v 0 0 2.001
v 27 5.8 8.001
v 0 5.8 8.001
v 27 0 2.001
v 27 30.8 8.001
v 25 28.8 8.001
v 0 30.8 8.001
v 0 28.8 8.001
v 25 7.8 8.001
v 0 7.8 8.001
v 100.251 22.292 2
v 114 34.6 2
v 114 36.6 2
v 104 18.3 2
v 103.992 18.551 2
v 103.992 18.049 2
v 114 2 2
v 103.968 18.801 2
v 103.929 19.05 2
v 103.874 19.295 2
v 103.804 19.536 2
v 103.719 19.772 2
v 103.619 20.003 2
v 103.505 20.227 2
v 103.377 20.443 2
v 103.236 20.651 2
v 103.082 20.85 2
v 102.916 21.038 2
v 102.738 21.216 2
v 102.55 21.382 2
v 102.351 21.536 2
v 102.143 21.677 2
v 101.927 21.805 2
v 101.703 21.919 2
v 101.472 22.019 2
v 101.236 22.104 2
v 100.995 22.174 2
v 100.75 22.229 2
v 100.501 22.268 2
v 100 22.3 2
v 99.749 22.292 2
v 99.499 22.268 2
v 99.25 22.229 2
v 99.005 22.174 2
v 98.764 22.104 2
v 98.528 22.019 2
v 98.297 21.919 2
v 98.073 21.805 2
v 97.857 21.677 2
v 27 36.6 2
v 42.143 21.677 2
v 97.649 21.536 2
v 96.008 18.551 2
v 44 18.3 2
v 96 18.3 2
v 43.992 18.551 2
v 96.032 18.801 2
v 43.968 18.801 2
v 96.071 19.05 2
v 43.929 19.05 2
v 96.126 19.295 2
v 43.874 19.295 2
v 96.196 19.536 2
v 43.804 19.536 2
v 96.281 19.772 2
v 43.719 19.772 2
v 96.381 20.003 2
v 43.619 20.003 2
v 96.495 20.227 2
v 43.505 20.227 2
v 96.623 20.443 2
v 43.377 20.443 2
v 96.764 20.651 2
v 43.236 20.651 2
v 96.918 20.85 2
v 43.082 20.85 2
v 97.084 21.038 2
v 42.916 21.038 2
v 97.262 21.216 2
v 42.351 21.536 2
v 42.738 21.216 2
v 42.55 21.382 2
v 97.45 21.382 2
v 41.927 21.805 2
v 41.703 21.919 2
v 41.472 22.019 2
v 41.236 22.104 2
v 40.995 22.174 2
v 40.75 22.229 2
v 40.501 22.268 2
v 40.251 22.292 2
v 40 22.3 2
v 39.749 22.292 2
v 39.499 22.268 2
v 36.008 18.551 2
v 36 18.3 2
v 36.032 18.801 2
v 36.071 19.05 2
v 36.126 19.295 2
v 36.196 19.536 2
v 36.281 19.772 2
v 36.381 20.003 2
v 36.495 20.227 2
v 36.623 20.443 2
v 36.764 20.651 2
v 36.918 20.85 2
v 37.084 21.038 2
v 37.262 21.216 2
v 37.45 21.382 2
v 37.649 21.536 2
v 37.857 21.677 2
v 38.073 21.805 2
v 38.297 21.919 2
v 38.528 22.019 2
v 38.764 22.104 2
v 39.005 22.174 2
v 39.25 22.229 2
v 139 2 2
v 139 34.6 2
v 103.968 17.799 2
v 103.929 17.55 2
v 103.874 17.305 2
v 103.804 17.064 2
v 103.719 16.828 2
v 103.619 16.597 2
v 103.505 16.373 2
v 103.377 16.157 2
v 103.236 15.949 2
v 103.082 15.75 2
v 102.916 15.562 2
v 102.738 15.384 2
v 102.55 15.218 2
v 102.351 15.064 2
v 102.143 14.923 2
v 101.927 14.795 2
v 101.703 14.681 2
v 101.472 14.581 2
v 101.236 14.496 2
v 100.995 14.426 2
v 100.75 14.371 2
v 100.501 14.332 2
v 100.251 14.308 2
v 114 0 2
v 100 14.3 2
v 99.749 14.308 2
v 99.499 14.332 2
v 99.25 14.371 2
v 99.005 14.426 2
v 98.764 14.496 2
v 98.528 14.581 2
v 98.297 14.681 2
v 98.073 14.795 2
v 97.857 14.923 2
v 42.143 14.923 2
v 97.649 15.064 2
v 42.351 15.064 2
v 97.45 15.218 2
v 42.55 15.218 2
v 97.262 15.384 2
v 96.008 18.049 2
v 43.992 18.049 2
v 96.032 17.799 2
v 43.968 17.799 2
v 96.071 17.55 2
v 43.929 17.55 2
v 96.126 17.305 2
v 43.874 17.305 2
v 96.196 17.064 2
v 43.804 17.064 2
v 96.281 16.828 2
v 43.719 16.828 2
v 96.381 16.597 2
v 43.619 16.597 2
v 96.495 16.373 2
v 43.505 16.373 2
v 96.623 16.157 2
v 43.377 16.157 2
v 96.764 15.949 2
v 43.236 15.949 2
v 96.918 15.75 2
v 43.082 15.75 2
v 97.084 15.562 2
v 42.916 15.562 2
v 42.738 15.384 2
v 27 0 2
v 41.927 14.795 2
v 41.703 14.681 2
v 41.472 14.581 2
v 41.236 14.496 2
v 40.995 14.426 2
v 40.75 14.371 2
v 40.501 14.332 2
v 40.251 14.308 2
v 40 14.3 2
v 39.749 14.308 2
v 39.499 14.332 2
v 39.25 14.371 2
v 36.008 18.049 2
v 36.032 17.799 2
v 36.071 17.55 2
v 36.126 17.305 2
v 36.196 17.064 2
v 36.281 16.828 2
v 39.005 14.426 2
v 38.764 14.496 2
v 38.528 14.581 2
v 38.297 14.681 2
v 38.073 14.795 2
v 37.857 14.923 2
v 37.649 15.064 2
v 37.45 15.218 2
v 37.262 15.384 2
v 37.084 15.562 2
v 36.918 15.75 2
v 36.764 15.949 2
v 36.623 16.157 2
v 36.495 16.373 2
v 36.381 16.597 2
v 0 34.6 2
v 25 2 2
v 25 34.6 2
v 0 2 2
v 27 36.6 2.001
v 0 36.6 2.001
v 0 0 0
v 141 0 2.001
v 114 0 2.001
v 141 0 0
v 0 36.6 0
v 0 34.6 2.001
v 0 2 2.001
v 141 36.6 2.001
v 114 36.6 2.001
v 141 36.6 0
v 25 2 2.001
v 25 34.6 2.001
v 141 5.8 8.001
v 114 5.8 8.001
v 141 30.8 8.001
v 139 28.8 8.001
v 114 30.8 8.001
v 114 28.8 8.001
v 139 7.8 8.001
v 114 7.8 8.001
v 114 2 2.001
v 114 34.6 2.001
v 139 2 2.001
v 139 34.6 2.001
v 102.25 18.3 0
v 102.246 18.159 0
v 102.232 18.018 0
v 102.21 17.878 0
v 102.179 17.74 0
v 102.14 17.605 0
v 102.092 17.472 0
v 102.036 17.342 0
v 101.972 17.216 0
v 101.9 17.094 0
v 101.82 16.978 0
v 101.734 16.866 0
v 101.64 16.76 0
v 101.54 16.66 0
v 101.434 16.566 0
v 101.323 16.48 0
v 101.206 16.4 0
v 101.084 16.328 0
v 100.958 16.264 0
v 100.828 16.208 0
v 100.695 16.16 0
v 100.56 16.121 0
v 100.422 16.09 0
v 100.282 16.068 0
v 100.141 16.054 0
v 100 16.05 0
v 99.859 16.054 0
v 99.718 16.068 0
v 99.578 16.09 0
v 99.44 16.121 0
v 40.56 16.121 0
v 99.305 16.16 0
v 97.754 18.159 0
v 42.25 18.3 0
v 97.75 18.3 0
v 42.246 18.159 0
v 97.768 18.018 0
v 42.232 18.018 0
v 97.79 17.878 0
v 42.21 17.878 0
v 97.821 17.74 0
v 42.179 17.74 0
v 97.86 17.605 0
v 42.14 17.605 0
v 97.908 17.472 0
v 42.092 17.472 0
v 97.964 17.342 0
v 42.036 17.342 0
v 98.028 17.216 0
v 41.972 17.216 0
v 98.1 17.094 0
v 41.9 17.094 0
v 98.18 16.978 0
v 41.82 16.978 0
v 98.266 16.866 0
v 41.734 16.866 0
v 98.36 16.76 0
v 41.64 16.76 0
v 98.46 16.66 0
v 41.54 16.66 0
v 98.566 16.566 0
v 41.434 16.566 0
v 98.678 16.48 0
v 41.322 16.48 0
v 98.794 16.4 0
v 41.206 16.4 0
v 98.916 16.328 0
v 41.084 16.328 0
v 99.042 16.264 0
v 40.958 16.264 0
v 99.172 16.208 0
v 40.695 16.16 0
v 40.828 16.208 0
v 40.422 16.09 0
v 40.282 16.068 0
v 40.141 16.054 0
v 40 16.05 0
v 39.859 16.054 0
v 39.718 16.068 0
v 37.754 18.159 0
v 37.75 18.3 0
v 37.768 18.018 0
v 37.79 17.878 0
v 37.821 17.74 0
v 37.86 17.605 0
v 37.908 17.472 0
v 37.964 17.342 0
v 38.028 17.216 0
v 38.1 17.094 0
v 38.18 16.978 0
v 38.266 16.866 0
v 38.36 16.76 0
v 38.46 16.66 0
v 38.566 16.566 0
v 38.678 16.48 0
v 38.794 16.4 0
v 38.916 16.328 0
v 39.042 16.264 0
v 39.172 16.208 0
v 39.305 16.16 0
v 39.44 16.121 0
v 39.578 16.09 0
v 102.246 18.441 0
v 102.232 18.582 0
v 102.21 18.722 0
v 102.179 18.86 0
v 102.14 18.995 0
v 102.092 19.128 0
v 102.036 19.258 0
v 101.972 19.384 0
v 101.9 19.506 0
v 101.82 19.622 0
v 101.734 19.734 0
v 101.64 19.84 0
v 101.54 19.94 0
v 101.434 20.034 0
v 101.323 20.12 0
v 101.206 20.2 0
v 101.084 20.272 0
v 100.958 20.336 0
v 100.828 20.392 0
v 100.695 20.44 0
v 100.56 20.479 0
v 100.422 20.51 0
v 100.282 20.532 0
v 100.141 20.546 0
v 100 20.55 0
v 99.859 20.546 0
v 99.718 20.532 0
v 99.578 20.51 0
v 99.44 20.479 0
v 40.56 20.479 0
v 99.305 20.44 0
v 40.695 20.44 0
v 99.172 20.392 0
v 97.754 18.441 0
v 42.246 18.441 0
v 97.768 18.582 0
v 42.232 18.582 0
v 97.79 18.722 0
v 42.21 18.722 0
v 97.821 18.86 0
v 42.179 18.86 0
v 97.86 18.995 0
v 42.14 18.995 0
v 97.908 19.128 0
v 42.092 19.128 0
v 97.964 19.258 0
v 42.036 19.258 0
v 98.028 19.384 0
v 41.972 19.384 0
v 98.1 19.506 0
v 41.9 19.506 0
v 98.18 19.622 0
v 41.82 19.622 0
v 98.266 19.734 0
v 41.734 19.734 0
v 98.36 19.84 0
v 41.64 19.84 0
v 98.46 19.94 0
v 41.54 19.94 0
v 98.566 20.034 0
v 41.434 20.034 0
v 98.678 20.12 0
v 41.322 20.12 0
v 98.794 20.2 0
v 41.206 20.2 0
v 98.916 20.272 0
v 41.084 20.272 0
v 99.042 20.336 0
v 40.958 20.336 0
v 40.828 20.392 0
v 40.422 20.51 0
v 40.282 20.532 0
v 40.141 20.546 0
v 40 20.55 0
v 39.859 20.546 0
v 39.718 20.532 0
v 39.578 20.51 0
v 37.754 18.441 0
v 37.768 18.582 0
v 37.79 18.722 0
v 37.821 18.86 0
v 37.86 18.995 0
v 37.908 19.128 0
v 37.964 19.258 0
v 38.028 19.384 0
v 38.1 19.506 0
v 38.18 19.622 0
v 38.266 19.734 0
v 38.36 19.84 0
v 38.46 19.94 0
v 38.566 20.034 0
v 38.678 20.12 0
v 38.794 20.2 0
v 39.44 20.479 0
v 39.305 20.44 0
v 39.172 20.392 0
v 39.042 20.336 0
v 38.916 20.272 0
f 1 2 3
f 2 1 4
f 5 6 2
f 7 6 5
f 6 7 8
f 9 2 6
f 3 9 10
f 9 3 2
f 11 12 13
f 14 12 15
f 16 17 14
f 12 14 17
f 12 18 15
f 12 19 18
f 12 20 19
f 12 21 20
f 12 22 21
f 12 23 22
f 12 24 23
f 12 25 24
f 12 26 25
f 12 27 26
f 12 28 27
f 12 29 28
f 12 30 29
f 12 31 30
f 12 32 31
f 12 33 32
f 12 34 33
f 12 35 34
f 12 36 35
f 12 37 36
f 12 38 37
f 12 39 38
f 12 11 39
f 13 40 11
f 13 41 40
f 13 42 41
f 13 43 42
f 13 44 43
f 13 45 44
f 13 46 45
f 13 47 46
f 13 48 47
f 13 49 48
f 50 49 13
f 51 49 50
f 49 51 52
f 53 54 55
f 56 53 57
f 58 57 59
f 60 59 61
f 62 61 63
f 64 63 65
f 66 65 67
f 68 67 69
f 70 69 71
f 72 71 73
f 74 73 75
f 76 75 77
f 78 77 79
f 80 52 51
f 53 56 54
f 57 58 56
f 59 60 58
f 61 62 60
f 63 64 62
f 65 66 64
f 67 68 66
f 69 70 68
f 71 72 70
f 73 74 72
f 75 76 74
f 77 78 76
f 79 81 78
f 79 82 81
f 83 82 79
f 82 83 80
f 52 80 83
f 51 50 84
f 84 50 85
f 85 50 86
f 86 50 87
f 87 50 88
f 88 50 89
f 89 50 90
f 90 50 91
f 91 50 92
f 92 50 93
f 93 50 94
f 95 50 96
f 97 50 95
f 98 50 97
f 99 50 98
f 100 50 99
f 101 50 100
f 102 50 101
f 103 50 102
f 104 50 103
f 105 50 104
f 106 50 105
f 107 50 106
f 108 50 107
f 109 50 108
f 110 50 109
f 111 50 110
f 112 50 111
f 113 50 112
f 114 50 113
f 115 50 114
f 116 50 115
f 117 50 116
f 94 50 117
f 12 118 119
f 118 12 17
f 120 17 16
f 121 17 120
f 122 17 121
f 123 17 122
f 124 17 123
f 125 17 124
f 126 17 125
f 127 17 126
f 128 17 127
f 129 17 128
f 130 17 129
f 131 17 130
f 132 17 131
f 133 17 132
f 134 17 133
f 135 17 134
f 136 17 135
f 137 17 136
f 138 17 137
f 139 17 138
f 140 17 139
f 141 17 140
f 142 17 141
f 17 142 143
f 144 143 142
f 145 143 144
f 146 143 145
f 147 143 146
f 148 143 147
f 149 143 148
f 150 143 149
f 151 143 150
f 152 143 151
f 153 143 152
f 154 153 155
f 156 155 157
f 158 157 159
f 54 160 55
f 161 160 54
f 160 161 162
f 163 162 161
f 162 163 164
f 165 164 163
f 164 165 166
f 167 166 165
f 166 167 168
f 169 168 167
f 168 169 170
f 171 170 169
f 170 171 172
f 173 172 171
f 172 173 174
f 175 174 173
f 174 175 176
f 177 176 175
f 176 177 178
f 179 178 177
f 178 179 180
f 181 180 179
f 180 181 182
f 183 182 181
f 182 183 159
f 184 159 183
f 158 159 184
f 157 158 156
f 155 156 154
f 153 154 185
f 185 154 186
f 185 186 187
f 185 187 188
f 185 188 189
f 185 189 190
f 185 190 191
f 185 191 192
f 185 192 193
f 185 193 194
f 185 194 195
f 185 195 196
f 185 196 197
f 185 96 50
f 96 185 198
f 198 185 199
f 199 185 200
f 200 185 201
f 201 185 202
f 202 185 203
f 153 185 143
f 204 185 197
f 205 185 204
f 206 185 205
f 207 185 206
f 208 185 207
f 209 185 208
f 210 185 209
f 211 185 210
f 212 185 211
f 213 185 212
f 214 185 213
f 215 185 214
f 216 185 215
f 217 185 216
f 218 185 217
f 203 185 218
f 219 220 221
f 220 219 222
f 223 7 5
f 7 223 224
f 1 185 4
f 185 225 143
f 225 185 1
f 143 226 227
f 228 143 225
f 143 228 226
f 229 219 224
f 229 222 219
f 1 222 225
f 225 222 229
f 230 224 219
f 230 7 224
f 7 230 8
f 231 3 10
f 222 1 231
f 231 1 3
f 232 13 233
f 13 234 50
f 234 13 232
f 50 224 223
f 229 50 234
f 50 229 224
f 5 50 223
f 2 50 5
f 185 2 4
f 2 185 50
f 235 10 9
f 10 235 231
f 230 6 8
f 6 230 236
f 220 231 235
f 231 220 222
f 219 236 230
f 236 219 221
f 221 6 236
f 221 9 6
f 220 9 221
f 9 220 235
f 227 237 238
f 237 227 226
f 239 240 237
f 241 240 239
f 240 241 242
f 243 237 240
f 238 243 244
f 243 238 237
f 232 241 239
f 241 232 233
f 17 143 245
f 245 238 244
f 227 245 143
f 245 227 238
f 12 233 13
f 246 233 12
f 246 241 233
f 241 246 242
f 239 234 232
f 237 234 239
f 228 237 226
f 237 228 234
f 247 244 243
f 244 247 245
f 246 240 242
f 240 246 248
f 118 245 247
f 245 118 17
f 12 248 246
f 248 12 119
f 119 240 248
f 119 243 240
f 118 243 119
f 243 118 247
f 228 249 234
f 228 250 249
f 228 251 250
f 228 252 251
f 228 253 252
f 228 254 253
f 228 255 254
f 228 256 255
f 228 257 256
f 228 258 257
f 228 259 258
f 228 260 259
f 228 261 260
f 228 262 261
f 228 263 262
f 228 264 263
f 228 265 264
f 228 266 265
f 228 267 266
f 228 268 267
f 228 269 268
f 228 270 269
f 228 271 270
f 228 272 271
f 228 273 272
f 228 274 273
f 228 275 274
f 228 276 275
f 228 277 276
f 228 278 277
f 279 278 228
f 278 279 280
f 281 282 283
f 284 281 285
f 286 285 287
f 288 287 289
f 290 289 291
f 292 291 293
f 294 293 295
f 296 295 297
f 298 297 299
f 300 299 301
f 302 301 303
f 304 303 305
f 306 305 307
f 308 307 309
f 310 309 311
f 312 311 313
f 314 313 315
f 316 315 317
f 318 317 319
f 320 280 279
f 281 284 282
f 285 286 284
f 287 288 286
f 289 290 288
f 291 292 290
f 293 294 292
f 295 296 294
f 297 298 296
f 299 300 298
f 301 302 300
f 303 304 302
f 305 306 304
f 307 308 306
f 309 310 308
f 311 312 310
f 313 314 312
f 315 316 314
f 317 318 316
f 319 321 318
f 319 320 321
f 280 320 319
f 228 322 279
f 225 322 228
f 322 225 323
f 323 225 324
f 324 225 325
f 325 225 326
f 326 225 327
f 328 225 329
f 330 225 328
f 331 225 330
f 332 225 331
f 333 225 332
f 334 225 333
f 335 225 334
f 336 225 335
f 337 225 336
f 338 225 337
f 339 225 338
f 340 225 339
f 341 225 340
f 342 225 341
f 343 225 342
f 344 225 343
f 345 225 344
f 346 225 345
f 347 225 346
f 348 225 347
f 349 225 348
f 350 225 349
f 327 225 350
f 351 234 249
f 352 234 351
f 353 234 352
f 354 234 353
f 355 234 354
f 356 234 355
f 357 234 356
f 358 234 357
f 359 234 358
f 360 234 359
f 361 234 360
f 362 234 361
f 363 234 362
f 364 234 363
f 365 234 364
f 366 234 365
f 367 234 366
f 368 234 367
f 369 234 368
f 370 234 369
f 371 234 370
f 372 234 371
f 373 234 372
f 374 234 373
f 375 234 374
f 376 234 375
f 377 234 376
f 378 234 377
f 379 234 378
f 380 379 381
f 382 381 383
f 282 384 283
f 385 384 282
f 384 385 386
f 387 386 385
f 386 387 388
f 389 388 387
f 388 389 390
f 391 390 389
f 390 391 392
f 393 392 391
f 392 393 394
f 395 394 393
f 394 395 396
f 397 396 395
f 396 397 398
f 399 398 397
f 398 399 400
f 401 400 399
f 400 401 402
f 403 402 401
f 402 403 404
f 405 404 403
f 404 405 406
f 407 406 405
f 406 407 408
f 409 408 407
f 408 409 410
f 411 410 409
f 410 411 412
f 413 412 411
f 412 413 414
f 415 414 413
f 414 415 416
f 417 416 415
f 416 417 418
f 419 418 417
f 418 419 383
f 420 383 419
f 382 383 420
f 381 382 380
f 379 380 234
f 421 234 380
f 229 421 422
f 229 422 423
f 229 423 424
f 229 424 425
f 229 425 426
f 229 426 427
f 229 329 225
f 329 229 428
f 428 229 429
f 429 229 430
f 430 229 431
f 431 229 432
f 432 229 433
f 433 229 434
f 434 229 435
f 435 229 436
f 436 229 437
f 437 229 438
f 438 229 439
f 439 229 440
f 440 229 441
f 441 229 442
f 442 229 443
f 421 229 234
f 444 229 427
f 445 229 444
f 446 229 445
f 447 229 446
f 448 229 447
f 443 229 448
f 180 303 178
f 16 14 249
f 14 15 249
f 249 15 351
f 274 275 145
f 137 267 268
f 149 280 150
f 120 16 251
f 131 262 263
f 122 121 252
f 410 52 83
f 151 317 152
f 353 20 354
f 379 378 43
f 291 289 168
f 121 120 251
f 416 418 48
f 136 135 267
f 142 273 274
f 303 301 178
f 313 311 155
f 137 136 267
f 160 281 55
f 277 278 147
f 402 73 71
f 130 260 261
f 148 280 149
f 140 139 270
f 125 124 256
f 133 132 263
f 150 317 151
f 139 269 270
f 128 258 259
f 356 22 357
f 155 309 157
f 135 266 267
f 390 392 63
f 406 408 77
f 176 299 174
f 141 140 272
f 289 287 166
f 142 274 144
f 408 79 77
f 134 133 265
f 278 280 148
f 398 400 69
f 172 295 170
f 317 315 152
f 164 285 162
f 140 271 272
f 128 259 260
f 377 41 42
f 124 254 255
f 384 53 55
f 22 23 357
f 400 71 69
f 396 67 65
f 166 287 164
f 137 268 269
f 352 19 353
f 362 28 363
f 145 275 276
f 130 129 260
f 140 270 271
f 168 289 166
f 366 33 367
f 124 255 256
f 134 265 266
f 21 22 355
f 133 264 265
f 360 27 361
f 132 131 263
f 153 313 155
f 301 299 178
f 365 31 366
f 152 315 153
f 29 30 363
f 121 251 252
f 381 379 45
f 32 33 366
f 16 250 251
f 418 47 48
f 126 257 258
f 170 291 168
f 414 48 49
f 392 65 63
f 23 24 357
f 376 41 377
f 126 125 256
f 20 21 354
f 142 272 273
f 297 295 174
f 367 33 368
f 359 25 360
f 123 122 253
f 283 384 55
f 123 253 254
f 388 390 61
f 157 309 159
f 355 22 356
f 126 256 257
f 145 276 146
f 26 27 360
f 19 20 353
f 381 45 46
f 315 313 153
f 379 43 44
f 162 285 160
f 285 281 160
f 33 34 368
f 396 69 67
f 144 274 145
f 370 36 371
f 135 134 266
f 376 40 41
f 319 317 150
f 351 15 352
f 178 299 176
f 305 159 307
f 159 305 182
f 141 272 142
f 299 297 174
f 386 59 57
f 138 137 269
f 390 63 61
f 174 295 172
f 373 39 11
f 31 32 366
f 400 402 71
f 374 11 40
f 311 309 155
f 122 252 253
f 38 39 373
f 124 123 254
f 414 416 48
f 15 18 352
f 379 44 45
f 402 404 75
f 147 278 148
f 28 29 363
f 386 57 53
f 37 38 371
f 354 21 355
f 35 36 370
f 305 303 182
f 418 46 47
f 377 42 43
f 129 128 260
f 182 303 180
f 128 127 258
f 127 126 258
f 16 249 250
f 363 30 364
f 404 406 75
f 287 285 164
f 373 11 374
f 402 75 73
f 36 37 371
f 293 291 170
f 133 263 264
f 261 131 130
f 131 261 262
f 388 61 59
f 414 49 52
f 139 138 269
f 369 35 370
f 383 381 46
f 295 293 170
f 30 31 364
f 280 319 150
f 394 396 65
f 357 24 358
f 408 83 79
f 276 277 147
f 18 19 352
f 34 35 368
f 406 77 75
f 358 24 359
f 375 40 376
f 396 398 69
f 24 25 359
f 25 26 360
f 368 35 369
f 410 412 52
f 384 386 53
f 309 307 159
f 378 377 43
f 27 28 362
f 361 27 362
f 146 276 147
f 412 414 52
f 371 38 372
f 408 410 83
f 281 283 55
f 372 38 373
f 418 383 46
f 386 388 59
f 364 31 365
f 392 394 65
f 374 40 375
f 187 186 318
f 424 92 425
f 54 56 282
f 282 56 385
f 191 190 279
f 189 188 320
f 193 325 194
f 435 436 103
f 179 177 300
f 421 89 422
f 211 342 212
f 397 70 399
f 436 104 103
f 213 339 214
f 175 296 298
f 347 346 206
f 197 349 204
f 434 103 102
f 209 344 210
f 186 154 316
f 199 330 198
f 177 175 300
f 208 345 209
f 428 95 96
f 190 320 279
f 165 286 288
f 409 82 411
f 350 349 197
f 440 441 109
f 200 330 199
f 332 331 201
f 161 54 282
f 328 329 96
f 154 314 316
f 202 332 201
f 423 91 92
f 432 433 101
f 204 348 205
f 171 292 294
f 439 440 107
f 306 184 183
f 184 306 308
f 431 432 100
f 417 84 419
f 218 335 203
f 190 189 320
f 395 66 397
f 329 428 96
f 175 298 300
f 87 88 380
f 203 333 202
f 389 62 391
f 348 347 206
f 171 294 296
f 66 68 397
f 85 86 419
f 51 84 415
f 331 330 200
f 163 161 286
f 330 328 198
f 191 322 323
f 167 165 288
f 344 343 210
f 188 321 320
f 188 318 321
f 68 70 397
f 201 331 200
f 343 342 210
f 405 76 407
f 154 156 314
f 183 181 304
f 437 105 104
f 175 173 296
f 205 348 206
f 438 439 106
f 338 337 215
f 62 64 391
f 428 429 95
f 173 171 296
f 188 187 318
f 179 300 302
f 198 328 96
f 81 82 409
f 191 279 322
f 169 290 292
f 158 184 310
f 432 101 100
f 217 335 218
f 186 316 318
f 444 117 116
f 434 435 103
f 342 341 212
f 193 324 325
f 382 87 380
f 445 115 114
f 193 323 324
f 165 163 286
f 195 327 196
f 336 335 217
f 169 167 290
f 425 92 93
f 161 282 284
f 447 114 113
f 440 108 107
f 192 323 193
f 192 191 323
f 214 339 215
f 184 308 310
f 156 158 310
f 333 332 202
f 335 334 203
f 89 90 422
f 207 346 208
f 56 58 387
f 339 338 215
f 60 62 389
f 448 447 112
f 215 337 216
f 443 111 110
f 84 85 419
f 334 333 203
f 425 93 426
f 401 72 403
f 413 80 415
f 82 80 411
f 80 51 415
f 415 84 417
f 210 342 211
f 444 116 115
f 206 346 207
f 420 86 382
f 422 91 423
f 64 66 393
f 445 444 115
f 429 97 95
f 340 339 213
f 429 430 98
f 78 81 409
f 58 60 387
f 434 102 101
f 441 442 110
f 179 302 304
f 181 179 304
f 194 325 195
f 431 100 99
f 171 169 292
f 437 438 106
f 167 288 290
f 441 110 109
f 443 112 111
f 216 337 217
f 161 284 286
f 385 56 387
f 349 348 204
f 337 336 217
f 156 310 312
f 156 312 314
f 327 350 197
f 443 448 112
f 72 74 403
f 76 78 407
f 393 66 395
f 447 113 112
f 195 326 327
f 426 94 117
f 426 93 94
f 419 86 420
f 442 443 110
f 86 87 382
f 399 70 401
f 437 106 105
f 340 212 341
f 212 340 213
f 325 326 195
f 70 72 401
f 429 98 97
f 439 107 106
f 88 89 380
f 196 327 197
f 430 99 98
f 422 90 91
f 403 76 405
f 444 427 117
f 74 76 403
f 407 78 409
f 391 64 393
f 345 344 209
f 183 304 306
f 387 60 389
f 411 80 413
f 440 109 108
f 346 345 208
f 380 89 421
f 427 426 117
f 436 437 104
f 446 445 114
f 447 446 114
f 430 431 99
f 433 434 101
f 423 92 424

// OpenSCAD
$fn = 100;

inner_width = 21;
outer_width = 32.6;

flange_depth = 6;
flange_base_width = 19;
flange_length = 25;

wall_thickness = 2;

holder_distance = 114;
length = holder_distance + flange_length + wall_thickness;

baseplate_width = outer_width+wall_thickness*2;

screw_hole_small = 4.5/2;
screw_hole_large = 8/2;
screw_hole_top_location = 100;
screw_hole_bottom_location = 40;


module flange(){
	hull(){
		cube([flange_length, outer_width, 0.001]);
		translate([0, (outer_width-inner_width)/2, flange_depth]){
			cube([flange_length, inner_width, 0.001]);
		}
	}
}

module holder_hull(){
	hull(){
		cube([flange_length+wall_thickness, outer_width+wall_thickness*2, 0.001]);
		translate([0, (outer_width-inner_width)/2, flange_depth]){
			cube([flange_length+wall_thickness, inner_width+wall_thickness*2, 0.001]);
		}
	}
	
}

module holder(){
	difference(){
		holder_hull();
		translate([0, wall_thickness, 0]){
			flange();
		}
	}
}

module baseplate(){
	difference(){
		cube([length, baseplate_width, wall_thickness]);
		translate([screw_hole_top_location,baseplate_width/2,0]){
			cylinder(wall_thickness, screw_hole_small, screw_hole_large);
		}
		translate([screw_hole_bottom_location,baseplate_width/2,0]){
			cylinder(wall_thickness, screw_hole_small, screw_hole_large);
		}

	}
}

module mounting_bracket(){
	union(){
		baseplate();
		translate([0,0,wall_thickness]){
			holder();
		}
		translate([holder_distance,0,wall_thickness]){
			holder();
		}
	}

}
//holder();
//baseplate();

mounting_bracket();
